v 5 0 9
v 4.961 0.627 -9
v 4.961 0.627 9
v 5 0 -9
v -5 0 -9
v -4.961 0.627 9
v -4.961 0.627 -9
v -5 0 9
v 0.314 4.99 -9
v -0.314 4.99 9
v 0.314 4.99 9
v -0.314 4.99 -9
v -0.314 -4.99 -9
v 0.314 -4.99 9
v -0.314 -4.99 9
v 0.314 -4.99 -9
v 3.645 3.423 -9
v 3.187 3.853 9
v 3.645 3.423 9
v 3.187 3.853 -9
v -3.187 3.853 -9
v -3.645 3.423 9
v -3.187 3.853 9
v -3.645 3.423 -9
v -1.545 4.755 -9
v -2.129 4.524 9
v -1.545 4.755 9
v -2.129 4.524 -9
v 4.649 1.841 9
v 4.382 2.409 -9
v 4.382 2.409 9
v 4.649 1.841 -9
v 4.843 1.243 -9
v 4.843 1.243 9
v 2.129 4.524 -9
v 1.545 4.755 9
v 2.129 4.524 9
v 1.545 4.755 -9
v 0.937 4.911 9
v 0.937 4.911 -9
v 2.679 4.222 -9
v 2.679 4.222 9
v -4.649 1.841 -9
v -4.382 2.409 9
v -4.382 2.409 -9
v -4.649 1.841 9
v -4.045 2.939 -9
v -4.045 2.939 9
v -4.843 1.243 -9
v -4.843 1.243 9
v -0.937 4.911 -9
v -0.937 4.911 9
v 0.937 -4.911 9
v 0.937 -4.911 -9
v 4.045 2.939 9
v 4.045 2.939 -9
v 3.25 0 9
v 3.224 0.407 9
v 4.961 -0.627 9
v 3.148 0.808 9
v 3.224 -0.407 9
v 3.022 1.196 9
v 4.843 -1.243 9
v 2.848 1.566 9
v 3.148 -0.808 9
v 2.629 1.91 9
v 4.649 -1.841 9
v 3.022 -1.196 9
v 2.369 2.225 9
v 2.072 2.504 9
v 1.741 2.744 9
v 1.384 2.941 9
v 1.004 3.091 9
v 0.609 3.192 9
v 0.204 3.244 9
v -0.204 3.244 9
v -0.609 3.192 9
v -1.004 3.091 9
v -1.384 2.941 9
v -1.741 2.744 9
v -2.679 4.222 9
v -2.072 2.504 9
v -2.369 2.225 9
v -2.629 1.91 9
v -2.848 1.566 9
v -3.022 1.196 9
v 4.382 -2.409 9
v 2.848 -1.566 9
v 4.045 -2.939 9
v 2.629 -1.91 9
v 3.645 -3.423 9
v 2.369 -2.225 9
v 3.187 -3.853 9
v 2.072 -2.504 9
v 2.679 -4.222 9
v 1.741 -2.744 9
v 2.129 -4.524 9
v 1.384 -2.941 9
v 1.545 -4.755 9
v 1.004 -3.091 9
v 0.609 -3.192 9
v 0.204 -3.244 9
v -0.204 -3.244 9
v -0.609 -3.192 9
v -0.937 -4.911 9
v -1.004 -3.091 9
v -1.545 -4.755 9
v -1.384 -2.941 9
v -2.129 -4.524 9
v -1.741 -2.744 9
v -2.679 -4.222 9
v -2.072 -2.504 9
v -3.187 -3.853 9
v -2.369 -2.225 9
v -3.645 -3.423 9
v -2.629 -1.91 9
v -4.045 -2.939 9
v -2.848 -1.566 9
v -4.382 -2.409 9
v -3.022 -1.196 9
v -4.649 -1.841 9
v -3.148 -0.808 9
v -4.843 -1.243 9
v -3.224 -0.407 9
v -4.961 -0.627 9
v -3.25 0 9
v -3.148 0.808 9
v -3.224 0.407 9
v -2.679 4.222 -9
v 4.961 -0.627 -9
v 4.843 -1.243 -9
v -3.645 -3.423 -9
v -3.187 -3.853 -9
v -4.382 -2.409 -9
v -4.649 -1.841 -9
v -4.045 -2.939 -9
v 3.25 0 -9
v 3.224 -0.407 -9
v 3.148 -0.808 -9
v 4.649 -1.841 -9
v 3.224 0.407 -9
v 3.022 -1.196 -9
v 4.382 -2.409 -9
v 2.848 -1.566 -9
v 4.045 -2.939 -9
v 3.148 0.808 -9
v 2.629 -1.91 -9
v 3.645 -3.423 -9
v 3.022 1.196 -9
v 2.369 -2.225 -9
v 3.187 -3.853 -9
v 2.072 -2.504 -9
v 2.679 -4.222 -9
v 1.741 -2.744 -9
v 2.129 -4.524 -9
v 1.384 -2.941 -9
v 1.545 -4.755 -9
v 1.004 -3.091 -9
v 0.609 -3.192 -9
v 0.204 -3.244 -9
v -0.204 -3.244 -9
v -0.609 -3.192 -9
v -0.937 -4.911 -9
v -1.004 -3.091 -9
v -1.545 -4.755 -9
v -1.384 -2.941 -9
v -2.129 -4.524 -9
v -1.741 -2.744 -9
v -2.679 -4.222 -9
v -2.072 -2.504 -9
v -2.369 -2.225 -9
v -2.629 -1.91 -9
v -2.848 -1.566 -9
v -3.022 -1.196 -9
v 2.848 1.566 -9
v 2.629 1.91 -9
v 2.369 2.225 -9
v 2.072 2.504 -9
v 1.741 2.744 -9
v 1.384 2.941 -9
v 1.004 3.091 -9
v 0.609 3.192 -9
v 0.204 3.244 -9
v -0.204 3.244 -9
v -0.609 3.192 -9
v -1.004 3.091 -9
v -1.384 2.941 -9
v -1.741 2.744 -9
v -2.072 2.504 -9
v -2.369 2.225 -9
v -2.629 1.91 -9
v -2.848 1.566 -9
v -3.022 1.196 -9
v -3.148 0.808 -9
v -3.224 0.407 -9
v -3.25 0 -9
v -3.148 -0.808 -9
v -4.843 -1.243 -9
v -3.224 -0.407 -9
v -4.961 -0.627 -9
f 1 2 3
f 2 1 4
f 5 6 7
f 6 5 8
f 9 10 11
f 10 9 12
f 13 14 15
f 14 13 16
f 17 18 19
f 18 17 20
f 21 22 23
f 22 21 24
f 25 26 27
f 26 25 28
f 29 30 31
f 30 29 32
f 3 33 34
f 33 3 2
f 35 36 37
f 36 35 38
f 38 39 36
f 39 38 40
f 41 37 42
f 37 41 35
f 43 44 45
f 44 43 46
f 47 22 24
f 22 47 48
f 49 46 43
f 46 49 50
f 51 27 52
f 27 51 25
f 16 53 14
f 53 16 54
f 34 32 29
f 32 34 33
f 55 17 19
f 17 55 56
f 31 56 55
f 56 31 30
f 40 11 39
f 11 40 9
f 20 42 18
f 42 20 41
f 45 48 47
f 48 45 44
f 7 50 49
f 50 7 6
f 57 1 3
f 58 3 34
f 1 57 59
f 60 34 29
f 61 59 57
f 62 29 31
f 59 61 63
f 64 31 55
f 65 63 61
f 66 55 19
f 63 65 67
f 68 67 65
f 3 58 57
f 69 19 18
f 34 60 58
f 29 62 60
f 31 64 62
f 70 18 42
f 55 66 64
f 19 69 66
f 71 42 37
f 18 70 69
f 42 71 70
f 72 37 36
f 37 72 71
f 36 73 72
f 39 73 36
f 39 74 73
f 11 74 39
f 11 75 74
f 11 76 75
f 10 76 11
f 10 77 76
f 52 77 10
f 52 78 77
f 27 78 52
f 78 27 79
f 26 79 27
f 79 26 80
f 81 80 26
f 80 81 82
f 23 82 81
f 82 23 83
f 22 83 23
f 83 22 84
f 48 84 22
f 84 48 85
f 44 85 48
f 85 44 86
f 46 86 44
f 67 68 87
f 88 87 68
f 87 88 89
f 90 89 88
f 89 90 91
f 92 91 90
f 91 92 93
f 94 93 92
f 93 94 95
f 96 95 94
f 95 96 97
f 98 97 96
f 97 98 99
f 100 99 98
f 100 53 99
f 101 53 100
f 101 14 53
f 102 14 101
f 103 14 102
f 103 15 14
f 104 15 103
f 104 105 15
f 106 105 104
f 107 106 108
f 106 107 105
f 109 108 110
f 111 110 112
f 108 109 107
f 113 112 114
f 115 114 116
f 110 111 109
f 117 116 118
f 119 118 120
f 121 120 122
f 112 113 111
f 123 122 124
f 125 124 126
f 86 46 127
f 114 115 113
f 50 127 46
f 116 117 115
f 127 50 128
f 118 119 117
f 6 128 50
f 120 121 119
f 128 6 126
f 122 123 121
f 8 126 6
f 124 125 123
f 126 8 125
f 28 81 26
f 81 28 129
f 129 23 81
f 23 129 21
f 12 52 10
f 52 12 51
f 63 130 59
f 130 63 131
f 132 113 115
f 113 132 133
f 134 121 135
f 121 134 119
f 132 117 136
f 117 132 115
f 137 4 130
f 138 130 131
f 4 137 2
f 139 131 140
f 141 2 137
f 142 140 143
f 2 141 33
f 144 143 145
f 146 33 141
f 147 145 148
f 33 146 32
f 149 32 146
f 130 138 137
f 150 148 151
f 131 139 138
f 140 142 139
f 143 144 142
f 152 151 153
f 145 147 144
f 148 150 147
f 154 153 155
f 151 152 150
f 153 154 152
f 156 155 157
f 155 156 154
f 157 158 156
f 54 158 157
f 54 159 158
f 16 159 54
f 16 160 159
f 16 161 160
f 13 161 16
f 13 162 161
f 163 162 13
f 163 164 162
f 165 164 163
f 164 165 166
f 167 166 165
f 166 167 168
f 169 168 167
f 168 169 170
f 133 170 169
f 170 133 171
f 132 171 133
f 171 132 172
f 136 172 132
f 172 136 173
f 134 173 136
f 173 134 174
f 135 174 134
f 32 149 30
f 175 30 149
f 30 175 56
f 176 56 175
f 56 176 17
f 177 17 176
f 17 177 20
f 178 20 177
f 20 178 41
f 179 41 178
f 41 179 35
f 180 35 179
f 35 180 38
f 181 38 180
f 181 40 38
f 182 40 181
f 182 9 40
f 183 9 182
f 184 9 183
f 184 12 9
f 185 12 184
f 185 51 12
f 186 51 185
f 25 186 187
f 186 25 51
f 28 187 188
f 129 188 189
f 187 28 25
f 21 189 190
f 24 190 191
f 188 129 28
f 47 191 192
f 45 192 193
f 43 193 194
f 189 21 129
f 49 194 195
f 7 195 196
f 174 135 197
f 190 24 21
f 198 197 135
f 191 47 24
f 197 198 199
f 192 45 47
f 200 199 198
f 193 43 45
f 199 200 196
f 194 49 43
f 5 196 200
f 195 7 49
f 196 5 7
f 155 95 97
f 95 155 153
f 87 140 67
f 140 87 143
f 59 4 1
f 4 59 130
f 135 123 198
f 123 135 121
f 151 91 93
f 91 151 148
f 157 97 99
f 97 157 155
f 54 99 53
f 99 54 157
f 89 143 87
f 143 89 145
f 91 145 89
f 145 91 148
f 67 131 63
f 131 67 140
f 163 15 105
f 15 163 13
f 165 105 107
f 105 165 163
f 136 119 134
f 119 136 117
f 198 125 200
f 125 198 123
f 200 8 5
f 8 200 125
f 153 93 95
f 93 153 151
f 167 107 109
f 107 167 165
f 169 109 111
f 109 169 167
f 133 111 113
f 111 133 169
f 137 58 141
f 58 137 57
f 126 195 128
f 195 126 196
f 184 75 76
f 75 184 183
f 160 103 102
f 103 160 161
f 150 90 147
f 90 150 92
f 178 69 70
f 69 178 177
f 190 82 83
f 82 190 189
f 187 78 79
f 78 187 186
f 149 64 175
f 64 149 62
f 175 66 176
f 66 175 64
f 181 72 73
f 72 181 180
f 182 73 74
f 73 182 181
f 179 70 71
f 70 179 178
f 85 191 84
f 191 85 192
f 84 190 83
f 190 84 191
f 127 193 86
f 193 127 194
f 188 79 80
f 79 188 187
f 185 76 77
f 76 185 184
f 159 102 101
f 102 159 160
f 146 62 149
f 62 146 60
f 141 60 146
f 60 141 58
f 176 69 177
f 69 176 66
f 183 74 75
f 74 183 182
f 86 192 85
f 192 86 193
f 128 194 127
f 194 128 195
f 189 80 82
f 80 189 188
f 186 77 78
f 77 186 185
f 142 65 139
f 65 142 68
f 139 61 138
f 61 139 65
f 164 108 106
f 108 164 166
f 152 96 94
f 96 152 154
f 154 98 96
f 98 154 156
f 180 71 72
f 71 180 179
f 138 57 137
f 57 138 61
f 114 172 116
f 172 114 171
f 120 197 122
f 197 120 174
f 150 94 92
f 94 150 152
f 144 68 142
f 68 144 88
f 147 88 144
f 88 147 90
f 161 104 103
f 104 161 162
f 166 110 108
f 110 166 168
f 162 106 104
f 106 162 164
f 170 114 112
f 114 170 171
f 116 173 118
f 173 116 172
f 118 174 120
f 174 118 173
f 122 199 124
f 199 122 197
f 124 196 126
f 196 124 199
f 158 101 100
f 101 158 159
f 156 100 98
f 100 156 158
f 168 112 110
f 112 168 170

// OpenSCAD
$fn = 50;


difference() {
	union() {
		translate(v = [0, 0, -9.0000000000]) {
			cylinder(h = 18, r = 5.0000000000);
		}
	}
	union() {
		translate(v = [0, 0, -100.0000000000]) {
			cylinder(h = 200, r = 3.2500000000);
		}
	}
}
